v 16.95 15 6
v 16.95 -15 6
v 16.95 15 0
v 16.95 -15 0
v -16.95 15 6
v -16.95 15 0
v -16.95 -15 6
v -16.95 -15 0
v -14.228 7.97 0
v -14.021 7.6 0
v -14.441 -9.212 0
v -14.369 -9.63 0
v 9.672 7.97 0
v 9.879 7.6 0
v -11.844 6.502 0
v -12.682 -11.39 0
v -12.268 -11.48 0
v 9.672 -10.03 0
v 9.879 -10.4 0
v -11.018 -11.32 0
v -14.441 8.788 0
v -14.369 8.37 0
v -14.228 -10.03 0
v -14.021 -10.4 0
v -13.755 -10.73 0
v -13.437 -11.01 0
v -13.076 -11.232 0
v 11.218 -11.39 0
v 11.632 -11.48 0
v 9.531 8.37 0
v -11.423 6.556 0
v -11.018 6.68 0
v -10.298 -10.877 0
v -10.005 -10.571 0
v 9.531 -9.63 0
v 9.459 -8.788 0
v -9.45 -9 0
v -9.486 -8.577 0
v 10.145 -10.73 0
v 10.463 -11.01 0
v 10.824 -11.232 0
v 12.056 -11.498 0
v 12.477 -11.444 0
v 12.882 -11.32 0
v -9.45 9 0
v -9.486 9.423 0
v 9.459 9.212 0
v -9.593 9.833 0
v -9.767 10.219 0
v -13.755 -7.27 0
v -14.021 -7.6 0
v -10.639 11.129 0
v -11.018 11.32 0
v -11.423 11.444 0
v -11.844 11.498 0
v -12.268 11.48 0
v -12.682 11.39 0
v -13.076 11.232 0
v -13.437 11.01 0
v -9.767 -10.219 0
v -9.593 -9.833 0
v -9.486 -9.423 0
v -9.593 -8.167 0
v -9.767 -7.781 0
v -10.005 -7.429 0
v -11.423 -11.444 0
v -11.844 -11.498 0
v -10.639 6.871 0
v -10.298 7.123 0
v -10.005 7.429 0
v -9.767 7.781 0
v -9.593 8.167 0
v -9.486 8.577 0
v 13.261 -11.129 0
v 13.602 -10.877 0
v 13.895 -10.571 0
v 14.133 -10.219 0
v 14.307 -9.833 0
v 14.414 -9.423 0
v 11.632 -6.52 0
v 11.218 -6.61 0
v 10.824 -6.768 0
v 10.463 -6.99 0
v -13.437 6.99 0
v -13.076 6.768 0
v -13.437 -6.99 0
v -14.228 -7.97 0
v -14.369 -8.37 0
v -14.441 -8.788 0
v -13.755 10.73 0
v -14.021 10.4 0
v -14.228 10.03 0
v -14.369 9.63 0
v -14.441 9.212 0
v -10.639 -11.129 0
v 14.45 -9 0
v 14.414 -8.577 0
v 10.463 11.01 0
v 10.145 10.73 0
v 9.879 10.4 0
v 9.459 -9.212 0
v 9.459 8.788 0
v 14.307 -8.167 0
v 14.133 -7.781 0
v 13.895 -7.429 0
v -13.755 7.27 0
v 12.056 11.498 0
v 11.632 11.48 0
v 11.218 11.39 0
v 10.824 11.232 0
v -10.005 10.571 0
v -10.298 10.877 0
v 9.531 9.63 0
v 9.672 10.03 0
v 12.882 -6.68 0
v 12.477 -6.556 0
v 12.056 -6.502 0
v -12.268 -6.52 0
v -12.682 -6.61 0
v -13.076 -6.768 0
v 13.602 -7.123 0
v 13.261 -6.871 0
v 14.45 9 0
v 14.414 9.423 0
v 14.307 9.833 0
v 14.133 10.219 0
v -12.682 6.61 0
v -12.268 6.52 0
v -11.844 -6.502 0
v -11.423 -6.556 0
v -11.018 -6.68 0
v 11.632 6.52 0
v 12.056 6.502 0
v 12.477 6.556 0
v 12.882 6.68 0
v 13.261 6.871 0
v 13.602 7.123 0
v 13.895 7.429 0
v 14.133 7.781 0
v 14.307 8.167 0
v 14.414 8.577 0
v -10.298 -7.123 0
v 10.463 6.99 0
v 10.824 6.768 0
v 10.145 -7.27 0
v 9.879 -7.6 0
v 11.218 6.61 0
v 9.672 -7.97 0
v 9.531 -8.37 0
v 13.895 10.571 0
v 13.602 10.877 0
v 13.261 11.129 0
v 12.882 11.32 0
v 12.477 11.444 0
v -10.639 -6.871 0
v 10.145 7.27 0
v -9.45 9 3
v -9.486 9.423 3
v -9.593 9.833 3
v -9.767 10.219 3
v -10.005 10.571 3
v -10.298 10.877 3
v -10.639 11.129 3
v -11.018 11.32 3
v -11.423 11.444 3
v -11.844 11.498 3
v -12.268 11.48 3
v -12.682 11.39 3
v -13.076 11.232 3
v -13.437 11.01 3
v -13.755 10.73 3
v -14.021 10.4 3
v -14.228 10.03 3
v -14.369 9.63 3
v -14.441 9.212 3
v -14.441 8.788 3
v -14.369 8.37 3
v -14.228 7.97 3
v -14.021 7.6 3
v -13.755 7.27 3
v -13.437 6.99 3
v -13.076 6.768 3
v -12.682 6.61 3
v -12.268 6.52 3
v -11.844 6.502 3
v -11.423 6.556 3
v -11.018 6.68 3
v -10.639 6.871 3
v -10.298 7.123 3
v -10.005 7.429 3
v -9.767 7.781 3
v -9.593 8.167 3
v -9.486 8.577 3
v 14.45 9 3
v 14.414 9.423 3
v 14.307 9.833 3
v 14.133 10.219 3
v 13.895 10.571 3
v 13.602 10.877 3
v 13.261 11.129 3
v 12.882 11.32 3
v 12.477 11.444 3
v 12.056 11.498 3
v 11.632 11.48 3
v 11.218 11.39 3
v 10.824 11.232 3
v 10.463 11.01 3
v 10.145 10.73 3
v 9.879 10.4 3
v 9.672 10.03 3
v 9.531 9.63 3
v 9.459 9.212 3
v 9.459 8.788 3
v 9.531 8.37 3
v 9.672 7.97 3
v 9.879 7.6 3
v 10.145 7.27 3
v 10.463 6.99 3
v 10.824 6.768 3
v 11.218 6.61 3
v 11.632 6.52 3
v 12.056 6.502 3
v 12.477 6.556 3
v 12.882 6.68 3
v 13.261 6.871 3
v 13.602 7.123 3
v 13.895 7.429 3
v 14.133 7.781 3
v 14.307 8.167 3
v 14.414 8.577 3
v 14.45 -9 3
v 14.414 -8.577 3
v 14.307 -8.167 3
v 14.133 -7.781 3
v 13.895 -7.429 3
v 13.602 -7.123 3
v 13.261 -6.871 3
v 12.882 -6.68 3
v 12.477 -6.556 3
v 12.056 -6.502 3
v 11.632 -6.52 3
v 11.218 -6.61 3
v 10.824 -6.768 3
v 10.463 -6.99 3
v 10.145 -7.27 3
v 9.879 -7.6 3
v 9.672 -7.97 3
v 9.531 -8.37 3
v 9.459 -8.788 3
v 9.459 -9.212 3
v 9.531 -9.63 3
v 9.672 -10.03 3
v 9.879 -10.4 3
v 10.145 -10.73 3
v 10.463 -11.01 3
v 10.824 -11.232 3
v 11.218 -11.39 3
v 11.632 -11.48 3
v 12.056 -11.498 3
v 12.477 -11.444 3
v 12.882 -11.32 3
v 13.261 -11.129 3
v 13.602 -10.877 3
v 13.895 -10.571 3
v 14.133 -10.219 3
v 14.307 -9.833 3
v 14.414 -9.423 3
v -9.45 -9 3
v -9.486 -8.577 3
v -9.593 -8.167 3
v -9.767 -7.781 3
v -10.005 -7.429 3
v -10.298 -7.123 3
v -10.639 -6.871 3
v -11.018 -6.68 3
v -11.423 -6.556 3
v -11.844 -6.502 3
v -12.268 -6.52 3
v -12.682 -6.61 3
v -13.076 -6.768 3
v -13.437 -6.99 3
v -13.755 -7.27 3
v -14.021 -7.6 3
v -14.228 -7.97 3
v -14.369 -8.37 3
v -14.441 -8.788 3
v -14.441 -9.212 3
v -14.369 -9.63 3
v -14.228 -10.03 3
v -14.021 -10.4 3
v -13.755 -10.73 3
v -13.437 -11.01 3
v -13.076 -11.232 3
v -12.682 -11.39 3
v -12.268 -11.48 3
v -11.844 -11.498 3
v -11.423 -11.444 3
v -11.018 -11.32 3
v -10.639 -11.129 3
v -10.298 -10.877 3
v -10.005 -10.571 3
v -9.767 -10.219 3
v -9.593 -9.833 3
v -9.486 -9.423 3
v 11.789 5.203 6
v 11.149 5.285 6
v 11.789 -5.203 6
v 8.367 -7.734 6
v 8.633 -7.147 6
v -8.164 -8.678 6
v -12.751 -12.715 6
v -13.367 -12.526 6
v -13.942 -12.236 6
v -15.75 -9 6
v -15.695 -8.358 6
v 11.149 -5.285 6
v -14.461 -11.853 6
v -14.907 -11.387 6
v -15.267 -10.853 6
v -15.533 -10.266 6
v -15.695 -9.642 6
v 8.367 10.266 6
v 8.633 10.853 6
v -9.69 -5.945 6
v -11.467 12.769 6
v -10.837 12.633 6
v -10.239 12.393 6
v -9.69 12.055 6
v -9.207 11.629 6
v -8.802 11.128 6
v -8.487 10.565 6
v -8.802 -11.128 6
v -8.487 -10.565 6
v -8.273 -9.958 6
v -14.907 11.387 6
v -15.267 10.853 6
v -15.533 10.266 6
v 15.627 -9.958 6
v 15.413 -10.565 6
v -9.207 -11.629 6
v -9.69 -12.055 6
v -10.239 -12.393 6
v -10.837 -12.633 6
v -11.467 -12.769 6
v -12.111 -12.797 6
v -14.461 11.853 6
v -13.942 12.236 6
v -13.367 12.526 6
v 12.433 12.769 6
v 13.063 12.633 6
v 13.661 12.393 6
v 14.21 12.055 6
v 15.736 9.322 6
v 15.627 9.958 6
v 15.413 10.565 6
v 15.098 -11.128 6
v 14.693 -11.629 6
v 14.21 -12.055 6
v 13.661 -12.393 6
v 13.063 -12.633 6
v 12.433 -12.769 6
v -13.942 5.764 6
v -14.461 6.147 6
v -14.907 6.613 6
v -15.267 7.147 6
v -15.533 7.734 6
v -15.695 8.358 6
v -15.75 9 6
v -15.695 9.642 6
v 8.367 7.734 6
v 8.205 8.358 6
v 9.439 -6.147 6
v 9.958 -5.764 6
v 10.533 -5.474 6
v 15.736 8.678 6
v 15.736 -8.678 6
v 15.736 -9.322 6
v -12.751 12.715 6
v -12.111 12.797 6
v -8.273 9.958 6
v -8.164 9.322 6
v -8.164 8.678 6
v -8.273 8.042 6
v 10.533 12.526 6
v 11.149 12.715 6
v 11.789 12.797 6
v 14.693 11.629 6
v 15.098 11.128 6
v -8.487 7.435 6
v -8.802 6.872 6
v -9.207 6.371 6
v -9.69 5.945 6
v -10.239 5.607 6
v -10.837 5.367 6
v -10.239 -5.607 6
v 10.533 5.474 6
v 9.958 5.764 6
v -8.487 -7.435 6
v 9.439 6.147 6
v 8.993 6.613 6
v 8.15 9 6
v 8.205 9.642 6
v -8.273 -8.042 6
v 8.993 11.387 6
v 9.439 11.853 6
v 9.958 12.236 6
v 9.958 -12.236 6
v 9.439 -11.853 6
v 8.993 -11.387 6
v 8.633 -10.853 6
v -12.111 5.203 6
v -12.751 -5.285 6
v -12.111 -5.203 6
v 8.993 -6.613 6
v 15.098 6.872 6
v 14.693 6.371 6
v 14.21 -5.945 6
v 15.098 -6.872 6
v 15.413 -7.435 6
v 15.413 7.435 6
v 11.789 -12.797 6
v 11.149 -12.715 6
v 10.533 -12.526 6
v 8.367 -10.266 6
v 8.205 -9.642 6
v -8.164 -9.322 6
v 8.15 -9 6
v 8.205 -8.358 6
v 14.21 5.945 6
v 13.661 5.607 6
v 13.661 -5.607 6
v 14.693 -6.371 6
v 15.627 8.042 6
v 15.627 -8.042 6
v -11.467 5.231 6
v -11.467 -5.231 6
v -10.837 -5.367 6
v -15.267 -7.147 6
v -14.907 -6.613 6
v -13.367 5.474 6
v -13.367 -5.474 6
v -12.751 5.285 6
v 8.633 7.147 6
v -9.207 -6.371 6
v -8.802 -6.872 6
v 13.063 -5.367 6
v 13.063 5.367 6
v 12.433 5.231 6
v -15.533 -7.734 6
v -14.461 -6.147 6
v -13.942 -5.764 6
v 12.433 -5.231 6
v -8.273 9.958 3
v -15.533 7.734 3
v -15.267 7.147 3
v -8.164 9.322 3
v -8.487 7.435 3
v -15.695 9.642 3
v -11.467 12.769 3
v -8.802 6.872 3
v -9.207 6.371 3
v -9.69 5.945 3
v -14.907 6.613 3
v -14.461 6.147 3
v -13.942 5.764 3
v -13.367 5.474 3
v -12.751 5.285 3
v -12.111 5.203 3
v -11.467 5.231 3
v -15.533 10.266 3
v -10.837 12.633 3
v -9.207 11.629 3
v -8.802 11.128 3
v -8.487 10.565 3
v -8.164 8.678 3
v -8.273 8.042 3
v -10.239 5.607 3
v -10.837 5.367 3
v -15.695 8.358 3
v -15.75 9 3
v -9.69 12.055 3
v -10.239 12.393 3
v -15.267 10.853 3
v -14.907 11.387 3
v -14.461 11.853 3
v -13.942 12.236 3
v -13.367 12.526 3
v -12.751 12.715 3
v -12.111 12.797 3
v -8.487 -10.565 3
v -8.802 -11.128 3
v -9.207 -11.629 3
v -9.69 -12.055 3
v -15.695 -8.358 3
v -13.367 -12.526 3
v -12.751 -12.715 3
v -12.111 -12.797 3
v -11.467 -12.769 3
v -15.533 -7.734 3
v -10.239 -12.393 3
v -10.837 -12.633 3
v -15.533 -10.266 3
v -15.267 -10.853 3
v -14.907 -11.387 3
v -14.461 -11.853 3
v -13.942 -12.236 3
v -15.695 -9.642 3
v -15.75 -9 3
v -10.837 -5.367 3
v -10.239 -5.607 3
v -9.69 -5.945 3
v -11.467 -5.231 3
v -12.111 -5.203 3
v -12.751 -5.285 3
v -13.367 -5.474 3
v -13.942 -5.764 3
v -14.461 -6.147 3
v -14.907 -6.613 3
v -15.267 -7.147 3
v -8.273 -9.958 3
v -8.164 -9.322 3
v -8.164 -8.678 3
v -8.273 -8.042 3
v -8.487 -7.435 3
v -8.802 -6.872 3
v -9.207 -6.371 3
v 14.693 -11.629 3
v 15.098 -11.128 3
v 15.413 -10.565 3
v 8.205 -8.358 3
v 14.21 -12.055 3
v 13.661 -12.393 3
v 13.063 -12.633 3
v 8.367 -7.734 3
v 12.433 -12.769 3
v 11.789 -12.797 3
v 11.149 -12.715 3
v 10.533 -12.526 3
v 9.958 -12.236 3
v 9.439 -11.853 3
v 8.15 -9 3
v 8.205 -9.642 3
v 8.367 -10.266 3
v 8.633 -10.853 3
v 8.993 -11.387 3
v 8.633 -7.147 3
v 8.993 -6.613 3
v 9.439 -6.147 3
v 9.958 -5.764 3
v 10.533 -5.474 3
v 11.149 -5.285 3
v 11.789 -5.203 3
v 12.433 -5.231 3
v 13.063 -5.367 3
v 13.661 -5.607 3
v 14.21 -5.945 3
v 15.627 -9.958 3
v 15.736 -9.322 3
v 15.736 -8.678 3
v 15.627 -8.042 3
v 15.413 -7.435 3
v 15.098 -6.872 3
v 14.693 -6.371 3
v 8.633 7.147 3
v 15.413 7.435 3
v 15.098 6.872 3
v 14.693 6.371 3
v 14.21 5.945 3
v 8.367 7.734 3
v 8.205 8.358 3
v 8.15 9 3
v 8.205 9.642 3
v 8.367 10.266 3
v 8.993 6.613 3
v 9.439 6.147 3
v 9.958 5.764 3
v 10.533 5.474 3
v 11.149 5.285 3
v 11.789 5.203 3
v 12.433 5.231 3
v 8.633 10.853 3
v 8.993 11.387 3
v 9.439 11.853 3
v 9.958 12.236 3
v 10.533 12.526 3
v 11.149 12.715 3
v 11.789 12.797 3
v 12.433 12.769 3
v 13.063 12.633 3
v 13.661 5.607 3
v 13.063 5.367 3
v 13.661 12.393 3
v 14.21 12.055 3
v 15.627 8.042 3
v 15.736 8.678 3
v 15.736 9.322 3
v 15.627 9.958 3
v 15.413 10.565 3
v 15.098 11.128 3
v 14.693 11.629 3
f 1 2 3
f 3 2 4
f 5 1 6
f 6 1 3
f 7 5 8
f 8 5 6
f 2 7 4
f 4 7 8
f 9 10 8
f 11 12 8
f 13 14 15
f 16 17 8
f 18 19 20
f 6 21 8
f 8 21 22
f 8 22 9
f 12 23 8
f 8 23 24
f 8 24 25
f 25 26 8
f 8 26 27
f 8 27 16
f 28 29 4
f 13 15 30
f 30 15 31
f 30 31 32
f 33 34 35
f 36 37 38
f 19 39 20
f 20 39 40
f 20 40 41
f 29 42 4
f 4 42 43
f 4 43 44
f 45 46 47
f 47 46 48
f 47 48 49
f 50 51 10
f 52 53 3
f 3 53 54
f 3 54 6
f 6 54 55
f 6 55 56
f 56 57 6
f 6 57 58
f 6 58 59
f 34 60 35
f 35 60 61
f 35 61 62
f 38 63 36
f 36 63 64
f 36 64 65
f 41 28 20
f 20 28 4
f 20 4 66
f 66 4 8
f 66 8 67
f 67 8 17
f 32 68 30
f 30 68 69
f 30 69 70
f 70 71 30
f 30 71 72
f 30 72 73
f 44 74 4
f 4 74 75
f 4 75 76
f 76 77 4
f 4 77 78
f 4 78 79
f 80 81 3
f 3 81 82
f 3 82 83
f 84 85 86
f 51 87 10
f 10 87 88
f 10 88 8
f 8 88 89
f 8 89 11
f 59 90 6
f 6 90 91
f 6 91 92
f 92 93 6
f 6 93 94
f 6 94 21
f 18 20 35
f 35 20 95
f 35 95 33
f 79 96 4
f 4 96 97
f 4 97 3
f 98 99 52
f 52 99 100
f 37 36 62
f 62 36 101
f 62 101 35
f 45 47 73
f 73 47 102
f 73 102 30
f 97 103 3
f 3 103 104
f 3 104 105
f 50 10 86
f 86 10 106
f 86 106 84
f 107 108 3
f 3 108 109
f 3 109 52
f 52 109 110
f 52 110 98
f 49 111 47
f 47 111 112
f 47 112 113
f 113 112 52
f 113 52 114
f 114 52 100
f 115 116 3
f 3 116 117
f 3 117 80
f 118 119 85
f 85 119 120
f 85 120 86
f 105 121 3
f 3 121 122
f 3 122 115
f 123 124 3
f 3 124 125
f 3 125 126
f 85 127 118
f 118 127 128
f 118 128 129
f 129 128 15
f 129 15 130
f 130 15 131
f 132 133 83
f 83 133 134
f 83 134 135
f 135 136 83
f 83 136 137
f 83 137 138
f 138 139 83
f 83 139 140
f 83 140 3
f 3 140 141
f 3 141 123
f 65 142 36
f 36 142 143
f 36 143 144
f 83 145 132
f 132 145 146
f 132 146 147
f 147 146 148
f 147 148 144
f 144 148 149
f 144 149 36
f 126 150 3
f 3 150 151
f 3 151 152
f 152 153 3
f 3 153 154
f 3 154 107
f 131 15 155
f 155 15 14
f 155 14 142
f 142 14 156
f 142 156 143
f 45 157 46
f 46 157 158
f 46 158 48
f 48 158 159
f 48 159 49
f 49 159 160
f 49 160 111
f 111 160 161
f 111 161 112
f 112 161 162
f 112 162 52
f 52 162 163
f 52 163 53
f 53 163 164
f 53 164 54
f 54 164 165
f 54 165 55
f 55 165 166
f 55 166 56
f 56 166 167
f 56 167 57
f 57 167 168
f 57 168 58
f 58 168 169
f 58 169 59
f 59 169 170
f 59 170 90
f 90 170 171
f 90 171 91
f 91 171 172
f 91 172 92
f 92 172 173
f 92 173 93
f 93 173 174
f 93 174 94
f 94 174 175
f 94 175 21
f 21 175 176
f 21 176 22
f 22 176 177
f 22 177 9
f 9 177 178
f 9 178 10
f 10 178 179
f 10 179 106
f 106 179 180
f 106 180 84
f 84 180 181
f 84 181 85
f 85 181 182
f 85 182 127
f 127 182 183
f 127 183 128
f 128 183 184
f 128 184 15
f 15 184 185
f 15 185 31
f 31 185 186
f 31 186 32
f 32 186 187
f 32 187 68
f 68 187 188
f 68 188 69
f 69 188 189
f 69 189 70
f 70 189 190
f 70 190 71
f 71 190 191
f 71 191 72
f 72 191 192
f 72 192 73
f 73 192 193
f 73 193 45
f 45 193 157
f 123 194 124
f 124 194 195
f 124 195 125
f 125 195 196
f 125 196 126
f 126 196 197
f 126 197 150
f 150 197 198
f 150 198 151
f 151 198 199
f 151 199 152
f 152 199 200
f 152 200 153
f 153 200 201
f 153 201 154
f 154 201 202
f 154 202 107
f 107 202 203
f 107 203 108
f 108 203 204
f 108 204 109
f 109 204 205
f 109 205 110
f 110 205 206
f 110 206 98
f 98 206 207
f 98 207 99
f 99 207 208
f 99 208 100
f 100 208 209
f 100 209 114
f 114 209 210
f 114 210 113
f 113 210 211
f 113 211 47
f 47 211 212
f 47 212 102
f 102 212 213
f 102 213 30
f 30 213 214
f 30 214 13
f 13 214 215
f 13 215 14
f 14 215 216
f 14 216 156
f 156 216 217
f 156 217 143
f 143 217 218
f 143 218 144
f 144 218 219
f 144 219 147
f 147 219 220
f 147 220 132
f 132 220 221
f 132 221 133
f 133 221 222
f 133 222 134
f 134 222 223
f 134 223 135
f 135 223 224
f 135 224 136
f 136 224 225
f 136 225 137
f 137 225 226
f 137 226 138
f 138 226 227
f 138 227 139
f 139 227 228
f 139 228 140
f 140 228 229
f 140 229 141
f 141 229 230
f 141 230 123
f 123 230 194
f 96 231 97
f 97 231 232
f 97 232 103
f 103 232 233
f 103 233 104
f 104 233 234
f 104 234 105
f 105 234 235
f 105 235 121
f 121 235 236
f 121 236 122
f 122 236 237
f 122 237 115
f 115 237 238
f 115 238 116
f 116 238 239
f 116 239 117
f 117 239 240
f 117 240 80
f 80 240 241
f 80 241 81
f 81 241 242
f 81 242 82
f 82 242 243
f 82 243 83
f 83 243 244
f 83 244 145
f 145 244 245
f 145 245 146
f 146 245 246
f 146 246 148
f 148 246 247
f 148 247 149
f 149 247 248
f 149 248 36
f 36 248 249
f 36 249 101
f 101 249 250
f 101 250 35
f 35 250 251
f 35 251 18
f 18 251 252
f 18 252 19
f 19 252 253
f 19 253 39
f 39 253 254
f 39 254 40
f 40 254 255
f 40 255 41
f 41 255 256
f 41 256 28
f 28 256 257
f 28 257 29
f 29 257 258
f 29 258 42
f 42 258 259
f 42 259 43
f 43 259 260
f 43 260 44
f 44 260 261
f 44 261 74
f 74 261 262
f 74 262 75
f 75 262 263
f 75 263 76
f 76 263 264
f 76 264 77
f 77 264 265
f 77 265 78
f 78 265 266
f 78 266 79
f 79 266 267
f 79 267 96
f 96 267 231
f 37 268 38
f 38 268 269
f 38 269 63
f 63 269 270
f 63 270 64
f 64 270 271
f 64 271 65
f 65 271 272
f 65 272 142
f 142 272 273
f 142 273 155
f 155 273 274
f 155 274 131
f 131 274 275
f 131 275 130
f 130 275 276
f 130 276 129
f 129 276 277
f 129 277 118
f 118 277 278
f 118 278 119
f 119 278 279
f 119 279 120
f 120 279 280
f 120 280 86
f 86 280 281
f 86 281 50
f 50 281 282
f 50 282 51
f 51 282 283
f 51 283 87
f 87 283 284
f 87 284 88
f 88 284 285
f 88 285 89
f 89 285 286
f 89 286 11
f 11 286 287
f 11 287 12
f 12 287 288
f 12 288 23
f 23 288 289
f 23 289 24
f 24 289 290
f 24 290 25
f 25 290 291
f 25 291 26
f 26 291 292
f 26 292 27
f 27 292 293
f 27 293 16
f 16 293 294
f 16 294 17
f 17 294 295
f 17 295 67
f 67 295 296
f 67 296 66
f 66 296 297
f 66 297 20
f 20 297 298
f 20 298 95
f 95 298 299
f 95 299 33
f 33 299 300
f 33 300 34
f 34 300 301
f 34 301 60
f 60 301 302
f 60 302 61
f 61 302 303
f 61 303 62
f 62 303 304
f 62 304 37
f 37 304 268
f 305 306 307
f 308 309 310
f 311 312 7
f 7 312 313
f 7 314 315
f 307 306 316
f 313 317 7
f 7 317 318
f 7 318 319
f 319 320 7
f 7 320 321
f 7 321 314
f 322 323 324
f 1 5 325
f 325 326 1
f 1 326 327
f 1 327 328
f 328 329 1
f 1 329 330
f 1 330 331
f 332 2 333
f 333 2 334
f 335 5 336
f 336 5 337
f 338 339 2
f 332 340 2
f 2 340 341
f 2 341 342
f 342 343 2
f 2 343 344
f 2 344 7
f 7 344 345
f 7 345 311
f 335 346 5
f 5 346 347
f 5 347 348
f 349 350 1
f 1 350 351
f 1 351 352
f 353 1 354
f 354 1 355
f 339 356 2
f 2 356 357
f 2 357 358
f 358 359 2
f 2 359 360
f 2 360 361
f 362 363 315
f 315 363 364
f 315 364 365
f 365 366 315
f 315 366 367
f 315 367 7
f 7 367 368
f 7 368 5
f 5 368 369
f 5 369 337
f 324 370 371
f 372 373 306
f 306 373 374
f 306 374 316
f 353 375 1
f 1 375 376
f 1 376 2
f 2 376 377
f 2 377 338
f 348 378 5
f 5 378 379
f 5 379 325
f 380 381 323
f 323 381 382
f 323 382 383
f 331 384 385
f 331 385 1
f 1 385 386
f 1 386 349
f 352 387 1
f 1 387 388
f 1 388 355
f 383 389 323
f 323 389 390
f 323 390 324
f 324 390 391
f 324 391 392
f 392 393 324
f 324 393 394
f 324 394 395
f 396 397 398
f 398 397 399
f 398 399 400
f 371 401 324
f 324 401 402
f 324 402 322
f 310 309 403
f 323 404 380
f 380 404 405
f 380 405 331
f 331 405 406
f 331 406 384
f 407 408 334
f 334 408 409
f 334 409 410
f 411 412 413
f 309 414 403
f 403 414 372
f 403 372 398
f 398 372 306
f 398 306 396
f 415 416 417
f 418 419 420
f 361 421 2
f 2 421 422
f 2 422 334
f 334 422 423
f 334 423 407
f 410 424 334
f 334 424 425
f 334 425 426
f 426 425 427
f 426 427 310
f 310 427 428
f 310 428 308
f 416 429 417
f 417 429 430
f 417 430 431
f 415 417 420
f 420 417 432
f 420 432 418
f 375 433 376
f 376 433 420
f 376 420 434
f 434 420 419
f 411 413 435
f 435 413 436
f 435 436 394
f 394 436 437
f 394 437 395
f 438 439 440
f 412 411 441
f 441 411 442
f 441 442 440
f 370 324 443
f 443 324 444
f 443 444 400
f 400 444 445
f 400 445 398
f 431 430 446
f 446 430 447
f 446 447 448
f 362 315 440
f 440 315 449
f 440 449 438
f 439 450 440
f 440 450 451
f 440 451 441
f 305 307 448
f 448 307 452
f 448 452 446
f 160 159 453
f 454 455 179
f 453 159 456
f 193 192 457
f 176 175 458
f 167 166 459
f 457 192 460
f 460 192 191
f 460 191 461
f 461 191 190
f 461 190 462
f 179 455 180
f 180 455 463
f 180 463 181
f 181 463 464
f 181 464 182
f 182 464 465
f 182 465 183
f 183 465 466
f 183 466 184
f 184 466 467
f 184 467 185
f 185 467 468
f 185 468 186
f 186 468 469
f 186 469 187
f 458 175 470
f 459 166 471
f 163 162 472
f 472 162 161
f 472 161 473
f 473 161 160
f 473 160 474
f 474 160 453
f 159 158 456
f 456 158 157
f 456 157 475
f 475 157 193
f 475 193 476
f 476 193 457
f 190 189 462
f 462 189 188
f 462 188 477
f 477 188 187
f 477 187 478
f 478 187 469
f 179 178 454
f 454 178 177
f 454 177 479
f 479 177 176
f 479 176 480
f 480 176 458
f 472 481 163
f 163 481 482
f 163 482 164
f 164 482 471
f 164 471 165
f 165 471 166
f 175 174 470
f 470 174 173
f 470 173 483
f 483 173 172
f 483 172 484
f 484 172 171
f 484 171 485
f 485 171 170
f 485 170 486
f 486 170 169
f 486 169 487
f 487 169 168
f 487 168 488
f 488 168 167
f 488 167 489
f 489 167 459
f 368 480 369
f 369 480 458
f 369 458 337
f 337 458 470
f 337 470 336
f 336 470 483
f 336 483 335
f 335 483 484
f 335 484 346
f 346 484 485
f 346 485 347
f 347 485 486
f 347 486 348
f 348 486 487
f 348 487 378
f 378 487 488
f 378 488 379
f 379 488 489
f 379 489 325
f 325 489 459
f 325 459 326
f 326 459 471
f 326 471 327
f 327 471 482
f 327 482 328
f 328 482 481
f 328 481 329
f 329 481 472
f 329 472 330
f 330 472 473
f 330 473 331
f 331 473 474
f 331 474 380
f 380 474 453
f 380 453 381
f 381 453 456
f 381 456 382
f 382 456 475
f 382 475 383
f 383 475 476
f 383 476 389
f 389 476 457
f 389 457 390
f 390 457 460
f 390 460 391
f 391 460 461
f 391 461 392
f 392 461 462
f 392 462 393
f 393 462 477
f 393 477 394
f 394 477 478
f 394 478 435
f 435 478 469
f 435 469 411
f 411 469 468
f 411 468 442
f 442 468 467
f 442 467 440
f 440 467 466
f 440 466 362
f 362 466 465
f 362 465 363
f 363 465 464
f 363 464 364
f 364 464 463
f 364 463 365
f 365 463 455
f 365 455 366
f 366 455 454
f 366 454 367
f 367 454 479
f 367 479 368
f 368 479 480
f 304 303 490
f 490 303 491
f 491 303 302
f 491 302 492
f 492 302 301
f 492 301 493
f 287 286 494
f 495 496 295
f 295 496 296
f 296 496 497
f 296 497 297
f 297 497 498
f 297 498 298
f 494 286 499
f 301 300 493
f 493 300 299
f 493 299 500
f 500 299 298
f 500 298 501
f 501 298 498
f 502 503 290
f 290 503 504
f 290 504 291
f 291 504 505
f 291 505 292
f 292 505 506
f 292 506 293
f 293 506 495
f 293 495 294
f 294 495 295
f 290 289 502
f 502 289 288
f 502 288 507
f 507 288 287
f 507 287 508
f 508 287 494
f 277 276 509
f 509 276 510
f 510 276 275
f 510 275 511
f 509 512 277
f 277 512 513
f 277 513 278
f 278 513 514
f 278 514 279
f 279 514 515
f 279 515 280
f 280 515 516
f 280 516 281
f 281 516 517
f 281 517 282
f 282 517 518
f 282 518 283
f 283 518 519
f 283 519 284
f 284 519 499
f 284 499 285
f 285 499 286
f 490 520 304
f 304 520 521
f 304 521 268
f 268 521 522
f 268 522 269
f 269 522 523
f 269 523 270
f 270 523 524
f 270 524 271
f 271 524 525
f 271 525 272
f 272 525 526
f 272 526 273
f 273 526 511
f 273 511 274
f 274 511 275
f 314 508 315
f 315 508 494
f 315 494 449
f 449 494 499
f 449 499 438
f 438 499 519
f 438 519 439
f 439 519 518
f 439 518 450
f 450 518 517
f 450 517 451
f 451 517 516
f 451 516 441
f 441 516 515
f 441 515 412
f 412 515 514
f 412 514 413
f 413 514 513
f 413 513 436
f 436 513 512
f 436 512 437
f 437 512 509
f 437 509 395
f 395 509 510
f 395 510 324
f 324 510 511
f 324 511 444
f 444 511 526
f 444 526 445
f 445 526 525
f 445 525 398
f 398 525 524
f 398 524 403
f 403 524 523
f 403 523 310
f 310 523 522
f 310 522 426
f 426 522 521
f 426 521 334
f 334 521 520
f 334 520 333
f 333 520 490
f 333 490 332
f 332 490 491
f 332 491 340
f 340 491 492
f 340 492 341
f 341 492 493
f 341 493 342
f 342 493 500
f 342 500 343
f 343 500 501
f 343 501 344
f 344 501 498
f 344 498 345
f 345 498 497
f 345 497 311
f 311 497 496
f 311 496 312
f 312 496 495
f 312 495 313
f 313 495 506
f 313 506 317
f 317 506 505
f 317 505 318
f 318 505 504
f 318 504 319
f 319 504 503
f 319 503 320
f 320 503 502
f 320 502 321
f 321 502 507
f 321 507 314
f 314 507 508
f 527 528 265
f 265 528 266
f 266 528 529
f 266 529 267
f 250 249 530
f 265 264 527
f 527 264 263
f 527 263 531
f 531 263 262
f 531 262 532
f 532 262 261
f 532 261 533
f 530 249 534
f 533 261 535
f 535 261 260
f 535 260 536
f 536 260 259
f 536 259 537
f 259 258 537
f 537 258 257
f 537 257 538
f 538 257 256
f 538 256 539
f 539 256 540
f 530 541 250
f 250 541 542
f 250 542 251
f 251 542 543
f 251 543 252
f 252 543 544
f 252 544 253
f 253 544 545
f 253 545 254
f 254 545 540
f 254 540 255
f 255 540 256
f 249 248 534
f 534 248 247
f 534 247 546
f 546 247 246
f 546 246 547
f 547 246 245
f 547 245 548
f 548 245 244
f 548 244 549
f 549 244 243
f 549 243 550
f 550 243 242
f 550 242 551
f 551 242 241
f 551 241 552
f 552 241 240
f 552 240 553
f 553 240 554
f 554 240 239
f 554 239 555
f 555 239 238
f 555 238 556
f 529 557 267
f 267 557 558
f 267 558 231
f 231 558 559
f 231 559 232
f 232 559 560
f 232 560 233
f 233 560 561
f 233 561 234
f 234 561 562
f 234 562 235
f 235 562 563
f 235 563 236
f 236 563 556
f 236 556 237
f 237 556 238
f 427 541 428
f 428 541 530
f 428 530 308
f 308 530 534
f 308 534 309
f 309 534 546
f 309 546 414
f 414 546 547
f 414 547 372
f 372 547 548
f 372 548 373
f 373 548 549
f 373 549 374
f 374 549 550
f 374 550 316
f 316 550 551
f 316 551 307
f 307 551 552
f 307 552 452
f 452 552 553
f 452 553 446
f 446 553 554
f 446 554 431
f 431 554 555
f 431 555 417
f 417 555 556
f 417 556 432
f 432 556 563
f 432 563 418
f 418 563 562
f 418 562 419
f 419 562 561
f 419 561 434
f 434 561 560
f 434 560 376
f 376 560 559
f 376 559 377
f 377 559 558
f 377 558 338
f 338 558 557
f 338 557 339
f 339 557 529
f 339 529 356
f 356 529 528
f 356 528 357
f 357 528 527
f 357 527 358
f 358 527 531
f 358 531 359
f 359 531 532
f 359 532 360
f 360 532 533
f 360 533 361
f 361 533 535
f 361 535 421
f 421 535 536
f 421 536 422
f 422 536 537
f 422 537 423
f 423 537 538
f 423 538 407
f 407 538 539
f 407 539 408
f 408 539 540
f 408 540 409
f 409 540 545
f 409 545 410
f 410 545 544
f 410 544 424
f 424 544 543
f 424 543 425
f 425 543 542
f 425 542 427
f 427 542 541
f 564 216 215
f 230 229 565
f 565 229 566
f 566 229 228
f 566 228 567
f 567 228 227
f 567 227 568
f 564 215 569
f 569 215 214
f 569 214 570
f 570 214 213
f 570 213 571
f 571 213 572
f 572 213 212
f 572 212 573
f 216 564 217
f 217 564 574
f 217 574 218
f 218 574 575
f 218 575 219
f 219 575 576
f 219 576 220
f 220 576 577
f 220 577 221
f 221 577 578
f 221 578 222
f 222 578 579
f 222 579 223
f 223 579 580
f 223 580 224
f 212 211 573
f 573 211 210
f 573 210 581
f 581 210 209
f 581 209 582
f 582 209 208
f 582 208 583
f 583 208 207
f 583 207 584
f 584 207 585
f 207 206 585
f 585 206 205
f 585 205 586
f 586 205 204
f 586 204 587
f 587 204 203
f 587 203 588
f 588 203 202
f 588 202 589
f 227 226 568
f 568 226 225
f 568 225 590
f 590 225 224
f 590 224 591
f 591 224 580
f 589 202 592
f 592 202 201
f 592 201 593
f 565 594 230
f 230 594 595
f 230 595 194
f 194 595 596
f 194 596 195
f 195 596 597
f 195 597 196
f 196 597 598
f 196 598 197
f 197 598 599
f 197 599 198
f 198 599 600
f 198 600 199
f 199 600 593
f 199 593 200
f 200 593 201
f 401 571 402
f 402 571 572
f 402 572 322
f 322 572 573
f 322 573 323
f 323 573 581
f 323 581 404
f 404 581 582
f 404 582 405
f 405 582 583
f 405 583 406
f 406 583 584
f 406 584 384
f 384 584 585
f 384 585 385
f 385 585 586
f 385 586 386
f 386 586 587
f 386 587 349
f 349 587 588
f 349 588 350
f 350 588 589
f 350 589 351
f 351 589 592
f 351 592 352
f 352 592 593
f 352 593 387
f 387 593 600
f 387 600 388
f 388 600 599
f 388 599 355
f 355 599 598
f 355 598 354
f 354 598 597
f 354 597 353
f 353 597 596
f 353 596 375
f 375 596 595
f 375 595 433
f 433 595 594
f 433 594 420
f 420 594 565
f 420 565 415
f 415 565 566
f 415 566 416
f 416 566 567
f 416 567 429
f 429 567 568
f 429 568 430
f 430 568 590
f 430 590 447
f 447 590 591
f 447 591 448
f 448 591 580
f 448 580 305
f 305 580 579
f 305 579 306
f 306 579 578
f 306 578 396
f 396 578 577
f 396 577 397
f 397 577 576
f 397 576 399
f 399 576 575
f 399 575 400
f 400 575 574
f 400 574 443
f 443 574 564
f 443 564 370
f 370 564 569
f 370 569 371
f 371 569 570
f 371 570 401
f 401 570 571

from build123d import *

# Parameters (mm, degrees)
SKETCH1_W           = 33.9
SKETCH1_H           = 30
BOSS_EXTRUDE5_DEPTH = 3
SKETCH3_R           = 2.5
CUT_EXTRUDE2_DEPTH  = 3
SKETCH7_W           = 33.9
SKETCH7_H           = 30
BOSS_EXTRUDE6_DEPTH = 3
SKETCH8_R           = 3.8
CUT_EXTRUDE3_DEPTH  = 3
SKETCH10_R          = 3.8
CUT_EXTRUDE4_DEPTH  = 3


with BuildPart() as part:
    # Sketch1 → Boss-Extrude5 (new body)
    with BuildSketch(Plane.XY):
        Rectangle(SKETCH1_W, SKETCH1_H)
    extrude(amount=BOSS_EXTRUDE5_DEPTH)

    # Sketch3 → Cut-Extrude2 (cut)
    with BuildSketch(Plane.XY.offset(3)):
        with Locations((-11.95, 9)):
            Circle(SKETCH3_R)
        with Locations((11.95, 9)):
            Circle(SKETCH3_R)
        with Locations((11.95, -9)):
            Circle(SKETCH3_R)
        with Locations((-11.95, -9)):
            Circle(SKETCH3_R)
    extrude(amount=-CUT_EXTRUDE2_DEPTH, mode=Mode.SUBTRACT)

    # Sketch7 → Boss-Extrude6 (add)
    with BuildSketch(Plane.XY.offset(3)):
        Rectangle(SKETCH7_W, SKETCH7_H)
    extrude(amount=BOSS_EXTRUDE6_DEPTH)

    # Sketch8 → Cut-Extrude3 (cut)
    with BuildSketch(Plane(origin=(0, 0, 3), x_dir=(-1, 0, 0), z_dir=(0, 0, -1))):
        with Locations((11.95, 9)):
            Circle(SKETCH8_R)
    extrude(amount=-CUT_EXTRUDE3_DEPTH, mode=Mode.SUBTRACT)

    # Sketch10 → Cut-Extrude4 (cut)
    with BuildSketch(Plane(origin=(0, 0, 3), x_dir=(-1, 0, 0), z_dir=(0, 0, -1))):
        with Locations((-11.95, 9)):
            Circle(SKETCH10_R)
        with Locations((-11.95, -9)):
            Circle(SKETCH10_R)
        with Locations((11.95, -9)):
            Circle(SKETCH10_R)
    extrude(amount=-CUT_EXTRUDE4_DEPTH, mode=Mode.SUBTRACT)


solid = part.part
